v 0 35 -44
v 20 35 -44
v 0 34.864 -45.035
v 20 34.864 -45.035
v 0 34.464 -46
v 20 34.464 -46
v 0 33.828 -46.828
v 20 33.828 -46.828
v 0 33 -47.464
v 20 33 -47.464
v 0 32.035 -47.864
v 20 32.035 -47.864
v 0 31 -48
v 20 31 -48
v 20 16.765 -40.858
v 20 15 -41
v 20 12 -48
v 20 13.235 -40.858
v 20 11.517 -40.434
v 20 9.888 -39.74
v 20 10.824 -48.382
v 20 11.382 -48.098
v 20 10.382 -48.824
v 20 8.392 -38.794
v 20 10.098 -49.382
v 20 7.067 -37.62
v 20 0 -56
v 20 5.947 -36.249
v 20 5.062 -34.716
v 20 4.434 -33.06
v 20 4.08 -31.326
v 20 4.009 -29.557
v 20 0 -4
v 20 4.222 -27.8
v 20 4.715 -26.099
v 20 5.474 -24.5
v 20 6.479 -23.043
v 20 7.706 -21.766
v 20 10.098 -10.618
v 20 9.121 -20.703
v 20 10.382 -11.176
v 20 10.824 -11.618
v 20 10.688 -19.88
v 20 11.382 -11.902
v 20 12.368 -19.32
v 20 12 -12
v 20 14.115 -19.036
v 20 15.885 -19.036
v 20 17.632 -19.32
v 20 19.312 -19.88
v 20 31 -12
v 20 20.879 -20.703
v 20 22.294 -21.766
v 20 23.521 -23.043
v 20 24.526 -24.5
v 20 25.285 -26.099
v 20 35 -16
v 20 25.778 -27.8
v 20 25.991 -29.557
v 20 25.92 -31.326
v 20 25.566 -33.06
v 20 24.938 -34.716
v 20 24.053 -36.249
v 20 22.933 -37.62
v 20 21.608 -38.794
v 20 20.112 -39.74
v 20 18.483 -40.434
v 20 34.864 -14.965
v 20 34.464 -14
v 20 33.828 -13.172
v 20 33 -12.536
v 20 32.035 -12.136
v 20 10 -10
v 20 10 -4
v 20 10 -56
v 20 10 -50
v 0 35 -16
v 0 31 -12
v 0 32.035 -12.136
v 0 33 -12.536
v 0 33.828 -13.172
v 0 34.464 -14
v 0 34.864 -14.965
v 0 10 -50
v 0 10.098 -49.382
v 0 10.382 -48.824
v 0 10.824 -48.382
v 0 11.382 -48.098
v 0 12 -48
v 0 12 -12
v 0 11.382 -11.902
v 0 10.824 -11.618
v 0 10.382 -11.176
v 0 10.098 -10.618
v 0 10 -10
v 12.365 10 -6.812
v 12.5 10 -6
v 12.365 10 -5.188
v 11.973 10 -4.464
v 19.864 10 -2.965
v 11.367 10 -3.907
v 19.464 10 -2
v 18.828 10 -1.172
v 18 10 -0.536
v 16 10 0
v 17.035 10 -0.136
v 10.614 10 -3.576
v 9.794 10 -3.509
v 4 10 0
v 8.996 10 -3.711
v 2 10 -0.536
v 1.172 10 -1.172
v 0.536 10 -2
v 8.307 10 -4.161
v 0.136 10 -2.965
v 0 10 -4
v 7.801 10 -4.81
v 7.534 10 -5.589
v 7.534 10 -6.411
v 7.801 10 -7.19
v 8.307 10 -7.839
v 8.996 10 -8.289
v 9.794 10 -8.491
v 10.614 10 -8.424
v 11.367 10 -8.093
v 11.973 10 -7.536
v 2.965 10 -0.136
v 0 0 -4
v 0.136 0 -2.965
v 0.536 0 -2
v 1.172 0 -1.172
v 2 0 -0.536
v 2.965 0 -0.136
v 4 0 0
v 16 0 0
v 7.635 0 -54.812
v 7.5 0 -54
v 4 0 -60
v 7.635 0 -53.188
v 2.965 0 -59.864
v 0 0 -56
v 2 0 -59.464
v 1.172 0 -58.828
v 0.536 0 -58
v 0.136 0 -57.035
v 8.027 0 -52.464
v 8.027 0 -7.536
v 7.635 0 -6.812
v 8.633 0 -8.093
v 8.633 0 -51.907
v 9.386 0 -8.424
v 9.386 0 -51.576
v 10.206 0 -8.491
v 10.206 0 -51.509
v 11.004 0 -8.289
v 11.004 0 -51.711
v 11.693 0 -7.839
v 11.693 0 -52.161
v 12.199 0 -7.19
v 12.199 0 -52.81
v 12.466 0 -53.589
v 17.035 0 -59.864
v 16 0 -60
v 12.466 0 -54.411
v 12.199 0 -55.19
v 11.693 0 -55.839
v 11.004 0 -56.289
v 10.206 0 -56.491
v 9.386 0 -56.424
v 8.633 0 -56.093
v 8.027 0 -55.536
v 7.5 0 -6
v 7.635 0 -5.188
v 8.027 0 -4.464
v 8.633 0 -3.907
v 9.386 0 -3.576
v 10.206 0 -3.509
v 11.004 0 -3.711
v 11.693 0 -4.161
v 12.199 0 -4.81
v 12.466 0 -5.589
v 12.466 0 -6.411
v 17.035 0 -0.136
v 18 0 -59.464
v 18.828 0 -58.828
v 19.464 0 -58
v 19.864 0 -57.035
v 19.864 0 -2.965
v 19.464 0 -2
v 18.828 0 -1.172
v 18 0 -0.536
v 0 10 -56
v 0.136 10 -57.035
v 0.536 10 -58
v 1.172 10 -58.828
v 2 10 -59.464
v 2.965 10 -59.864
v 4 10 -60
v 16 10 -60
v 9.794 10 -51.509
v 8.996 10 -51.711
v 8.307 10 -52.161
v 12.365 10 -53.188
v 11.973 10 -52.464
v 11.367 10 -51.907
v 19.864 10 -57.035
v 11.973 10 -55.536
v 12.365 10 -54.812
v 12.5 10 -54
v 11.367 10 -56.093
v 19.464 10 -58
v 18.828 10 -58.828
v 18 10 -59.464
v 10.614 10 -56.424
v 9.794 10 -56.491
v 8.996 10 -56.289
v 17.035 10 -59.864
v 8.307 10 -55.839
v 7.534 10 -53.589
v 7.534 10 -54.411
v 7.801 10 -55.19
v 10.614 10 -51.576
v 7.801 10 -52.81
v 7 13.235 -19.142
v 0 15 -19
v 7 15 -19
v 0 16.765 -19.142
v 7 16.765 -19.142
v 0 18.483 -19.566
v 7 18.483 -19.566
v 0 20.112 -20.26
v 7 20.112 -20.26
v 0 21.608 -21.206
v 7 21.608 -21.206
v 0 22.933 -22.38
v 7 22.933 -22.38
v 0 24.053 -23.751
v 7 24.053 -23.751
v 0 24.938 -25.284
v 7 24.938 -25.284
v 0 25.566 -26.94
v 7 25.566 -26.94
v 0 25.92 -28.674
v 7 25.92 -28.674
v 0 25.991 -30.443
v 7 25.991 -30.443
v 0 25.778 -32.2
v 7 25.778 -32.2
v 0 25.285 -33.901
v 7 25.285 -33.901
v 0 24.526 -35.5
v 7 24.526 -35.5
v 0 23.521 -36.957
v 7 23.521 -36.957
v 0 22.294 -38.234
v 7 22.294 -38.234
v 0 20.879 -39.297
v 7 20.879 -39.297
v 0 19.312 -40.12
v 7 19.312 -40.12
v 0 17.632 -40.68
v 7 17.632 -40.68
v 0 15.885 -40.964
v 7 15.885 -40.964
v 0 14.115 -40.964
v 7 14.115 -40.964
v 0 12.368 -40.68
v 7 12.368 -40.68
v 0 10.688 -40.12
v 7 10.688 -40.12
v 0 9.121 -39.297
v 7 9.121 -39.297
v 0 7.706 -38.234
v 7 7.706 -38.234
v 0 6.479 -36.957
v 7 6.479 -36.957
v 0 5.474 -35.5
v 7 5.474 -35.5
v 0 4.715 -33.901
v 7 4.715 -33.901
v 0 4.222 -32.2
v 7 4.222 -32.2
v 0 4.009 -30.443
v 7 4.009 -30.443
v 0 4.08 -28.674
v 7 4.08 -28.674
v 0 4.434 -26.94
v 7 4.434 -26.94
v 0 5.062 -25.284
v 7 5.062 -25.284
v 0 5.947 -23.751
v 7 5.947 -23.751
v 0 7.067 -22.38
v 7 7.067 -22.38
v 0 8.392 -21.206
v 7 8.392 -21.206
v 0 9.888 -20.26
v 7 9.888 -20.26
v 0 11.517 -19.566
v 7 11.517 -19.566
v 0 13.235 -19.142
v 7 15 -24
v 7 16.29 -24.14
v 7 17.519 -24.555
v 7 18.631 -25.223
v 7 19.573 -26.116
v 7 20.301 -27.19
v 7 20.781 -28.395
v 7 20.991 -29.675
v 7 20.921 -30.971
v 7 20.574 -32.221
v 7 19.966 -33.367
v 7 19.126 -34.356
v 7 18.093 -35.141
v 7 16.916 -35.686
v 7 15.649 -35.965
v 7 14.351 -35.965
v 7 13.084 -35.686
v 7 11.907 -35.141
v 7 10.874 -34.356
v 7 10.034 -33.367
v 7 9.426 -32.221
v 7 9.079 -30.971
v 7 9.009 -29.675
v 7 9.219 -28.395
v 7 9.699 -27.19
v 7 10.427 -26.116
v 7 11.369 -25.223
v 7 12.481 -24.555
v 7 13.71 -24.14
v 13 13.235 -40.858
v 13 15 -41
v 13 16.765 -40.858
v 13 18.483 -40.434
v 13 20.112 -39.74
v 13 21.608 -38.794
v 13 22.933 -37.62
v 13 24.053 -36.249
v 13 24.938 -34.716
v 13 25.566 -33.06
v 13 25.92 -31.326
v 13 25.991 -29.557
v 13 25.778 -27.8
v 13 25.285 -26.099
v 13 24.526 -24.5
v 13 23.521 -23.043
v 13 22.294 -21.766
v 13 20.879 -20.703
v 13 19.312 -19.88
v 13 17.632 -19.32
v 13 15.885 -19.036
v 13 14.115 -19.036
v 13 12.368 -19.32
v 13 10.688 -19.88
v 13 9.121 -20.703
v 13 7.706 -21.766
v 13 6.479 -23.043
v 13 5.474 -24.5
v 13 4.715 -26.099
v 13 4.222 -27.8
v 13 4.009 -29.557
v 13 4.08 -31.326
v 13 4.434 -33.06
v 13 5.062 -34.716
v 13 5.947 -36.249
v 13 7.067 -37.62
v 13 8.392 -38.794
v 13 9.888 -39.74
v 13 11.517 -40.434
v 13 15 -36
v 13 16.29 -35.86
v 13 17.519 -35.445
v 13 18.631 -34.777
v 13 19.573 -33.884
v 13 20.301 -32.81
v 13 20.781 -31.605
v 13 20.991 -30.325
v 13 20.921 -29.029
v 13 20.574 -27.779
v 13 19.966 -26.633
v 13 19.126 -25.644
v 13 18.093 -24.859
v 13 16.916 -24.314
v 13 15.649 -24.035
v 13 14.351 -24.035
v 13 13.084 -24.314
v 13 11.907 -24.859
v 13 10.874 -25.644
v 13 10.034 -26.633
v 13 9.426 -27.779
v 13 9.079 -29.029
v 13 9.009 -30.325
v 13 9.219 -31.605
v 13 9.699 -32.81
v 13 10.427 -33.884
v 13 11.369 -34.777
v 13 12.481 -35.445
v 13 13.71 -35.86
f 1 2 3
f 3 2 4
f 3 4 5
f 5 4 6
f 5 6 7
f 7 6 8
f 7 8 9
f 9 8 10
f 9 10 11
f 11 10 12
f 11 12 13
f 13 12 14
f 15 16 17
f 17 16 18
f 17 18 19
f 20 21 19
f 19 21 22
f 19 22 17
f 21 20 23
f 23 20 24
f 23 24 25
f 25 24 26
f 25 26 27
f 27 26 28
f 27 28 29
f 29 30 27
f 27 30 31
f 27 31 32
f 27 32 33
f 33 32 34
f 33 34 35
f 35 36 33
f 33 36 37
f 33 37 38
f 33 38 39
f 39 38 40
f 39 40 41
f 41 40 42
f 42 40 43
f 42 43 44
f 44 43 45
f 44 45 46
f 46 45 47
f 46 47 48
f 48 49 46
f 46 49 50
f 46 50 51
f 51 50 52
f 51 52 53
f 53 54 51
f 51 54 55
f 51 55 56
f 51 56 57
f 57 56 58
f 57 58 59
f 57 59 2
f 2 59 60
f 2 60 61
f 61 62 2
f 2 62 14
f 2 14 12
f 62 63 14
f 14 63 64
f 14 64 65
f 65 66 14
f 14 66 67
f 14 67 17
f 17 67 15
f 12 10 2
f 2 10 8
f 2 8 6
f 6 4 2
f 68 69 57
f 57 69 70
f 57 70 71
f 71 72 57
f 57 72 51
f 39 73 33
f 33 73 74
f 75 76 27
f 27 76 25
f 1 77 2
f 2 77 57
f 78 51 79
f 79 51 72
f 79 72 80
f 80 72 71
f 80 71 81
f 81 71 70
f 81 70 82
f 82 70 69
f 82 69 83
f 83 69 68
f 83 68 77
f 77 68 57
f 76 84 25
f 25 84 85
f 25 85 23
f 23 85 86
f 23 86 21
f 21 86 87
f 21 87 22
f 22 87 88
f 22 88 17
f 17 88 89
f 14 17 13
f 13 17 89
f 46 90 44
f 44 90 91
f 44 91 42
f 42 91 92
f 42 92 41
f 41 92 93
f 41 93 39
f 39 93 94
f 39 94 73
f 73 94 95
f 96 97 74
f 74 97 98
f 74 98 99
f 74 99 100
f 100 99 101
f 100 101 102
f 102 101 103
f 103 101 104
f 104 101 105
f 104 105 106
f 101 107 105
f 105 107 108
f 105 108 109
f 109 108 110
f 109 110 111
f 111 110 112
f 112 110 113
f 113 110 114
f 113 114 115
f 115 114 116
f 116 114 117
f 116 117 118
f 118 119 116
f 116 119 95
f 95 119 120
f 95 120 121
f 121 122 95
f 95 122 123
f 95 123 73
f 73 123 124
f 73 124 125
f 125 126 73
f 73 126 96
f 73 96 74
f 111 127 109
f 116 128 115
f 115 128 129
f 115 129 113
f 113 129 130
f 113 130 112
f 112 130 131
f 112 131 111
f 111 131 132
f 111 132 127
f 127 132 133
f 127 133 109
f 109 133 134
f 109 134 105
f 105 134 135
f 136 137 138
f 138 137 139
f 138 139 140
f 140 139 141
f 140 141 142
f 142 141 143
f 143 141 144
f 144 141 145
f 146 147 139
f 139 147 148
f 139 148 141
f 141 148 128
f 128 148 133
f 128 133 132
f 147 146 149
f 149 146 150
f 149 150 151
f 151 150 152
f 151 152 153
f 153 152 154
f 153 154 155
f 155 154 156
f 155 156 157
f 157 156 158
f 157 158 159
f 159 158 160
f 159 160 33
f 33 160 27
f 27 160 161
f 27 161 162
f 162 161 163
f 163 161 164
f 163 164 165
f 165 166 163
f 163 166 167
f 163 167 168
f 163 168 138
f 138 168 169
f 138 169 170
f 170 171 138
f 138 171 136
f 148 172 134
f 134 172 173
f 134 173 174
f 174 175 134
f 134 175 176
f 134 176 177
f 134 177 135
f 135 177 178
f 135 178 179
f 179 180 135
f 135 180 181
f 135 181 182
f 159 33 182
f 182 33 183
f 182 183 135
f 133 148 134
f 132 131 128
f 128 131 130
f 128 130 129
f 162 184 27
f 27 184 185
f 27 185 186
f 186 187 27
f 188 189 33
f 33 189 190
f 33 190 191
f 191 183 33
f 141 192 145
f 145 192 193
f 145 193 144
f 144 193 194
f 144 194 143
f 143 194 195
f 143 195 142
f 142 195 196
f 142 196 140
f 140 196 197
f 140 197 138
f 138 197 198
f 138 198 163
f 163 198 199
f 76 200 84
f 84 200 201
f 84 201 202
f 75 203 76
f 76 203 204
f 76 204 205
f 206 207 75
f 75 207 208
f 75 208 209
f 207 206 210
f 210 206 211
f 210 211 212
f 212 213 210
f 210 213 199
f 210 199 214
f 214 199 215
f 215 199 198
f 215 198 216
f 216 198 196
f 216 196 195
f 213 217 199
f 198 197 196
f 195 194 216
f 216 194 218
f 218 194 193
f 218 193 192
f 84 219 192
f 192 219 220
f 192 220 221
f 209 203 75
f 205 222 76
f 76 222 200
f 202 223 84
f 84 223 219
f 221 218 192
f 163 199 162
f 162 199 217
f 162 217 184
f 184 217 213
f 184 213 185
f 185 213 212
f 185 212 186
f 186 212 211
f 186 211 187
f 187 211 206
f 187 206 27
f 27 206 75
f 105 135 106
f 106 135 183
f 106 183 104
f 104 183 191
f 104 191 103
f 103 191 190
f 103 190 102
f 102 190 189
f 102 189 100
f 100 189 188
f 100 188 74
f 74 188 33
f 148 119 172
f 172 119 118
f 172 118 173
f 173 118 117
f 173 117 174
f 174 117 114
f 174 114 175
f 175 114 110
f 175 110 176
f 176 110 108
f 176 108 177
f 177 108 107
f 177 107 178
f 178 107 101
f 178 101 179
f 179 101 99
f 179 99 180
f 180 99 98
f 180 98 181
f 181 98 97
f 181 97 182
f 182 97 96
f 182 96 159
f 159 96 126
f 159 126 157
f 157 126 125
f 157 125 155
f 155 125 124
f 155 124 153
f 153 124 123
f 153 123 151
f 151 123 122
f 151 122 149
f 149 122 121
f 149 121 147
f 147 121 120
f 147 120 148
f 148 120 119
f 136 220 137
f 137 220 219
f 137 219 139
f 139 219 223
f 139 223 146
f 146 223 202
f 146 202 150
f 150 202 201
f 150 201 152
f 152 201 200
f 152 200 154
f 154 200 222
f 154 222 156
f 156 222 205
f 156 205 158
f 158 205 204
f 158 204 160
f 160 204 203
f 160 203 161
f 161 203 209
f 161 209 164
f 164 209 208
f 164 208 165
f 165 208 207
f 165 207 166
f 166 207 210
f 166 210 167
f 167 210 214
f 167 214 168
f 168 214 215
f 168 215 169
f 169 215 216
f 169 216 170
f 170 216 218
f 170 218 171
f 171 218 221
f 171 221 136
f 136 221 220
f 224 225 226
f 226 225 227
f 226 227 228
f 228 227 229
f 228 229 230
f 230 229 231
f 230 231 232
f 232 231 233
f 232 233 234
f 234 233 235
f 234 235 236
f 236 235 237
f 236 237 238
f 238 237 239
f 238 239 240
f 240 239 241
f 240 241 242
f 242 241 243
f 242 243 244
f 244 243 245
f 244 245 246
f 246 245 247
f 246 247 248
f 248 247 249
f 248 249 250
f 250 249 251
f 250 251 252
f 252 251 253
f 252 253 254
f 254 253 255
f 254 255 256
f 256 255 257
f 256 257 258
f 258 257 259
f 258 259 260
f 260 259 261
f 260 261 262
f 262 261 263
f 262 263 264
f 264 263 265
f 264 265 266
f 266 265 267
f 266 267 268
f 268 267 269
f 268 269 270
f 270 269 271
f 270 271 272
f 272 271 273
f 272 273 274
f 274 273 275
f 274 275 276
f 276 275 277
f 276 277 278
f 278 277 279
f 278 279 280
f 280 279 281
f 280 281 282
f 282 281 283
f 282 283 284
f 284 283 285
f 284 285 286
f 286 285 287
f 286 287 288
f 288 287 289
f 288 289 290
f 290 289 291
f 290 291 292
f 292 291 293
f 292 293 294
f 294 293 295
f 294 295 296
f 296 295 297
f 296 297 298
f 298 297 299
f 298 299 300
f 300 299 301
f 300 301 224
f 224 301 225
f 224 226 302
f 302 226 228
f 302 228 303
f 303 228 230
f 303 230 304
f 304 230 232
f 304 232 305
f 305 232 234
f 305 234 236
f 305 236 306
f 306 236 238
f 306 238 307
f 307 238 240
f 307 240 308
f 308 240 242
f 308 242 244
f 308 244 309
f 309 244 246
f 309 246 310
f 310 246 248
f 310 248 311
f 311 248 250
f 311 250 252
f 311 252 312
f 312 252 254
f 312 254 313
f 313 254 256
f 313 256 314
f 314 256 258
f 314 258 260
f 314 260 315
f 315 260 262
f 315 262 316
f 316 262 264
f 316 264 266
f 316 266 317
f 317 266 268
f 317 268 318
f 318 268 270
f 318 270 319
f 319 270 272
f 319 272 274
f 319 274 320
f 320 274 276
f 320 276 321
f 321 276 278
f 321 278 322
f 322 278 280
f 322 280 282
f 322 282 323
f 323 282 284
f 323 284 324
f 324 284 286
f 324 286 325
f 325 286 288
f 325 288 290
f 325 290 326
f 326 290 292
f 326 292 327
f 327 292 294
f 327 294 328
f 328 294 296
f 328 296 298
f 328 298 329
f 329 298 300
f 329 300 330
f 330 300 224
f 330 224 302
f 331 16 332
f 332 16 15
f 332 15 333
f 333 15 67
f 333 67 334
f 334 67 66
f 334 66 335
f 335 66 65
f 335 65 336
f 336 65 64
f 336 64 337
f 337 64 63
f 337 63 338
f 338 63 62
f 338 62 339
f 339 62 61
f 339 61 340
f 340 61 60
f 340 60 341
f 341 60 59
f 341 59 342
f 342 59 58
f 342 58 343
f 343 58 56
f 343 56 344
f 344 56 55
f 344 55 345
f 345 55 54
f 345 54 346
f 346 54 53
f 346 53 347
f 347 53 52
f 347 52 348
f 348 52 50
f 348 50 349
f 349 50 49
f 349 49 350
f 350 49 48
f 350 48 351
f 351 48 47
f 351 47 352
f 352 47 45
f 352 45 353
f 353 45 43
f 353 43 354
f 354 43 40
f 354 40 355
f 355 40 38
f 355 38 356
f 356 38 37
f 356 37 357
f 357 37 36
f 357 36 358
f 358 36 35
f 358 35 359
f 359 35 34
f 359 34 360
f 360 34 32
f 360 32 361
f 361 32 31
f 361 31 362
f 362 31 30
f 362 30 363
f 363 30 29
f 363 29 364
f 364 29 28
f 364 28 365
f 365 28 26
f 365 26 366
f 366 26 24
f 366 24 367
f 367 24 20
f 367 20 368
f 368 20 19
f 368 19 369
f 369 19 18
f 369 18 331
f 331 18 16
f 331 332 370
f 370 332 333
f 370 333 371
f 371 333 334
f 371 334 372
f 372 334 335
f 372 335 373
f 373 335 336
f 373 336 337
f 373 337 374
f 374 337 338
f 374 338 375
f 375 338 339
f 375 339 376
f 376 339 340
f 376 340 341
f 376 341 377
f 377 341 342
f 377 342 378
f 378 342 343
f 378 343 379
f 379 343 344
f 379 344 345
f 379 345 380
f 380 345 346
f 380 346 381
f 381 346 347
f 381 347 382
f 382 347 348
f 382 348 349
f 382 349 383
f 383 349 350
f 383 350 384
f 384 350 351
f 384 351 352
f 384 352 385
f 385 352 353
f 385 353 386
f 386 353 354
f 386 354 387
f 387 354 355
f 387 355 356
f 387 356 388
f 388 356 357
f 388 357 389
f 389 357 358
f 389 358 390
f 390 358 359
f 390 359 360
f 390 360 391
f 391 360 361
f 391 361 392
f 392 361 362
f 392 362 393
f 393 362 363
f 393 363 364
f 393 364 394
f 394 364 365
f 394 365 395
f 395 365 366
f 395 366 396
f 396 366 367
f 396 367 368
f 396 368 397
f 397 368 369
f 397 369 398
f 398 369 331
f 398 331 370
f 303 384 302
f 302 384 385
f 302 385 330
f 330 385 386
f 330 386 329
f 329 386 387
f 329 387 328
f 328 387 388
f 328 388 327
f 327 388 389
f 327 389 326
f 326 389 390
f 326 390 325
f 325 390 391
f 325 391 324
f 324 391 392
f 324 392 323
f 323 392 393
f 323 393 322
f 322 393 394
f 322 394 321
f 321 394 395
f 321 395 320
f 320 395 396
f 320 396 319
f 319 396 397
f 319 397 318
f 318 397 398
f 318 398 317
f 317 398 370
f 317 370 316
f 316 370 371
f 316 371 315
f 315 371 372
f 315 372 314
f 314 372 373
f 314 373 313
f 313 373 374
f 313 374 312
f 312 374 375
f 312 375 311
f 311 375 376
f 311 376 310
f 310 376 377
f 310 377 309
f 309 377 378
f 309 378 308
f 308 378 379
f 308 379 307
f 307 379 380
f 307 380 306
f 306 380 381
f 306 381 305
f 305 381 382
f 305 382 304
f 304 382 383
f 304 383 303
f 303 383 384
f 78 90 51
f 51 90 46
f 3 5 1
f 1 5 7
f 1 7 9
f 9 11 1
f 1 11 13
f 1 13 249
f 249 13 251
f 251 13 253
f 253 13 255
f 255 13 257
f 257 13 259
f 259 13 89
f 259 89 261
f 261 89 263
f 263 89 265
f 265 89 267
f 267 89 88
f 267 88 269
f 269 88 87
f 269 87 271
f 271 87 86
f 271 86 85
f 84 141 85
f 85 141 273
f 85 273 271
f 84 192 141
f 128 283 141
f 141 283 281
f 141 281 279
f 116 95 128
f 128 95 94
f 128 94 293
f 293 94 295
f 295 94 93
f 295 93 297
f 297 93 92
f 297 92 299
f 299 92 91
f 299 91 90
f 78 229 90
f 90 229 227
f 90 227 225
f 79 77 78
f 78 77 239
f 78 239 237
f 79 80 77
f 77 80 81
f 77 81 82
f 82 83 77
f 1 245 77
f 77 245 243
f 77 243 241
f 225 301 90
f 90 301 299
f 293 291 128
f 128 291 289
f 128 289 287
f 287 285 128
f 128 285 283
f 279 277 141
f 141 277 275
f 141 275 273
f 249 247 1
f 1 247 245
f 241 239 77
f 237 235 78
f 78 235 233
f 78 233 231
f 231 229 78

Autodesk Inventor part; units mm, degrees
ref_plane "YZ Plane" through (0, 0, 0) normal (1, 0, 0) x (0, 1, 0)
ref_plane "XZ Plane" through (0, 0, 0) normal (0, 1, 0) x (-1, 0, 0)
ref_plane "XY Plane" through (0, 0, 0) normal (0, 0, 1) x (1, 0, 0)
sketch "Boceto1" plane through (0, 0, 0) normal (1, 0, 0) x (0, 1, 0)
  line L0 (0, 0) -> (0, -60)
  line L1 (0, -60) -> (10, -60)
  line L2 (10, -60) -> (10, -48)
  line L3 (10, -48) -> (35, -48)
  line L4 (35, -48) -> (35, -12)
  line L5 (35, -12) -> (10, -12)
  line L6 (10, -12) -> (10, 0)
  line L7 (10, 0) -> (0, 0)
  circle A0 centre (15, -30) radius 6
  dimension "d0" = 36
  dimension "d1" = 12
  dimension "d2" = 12
  dimension "d3" = 35
  dimension "d4" = 10
  dimension "d5" = 20
  dimension "d6" = 18
  dimension "d7" = 12
extrude "Extrusión1" add sketch "Boceto1" along normal blind 20
sketch "Boceto2" plane through (20, 0, 0) normal (1, 0, 0) x (0, 0, -1)
  circle A0 centre (30, 15) radius 6 projected
  circle A1 centre (30, 15) radius 11
  point P0 (0, 0)
  dimension "d10" = 22
extrude "Extrusión2" cut sketch "Boceto2" against normal blind 7
sketch "Boceto3" plane through (0, 0, 0) normal (-1, 0, 0) x (0, 0, 1)
  circle A0 centre (-30, 15) radius 6 projected
  circle A1 centre (-30, 15) radius 11
  point P0 (0, 0)
  dimension "d13" = 22
extrude "Extrusión3" cut sketch "Boceto3" against normal blind 7
sketch "Boceto4" plane through (0, 10, 0) normal (0, 1, 0) x (1, 0, 0)
  line L0 (20, 12) -> (20, 0) projected
  line L1 (0, 12) -> (0, 0) projected
  line L2 (20, 60) -> (20, 48) projected
  line L3 (0, 12) -> (20, 12) projected
  line L4 (0, 0) -> (20, 0) projected
  line L5 (0, 60) -> (20, 60) projected
  point P0 (10, 6)
  point P1 (10, 54)
  dimension "d16" = 20
  dimension "d17" = 10
  dimension "d18" = 10
  dimension "d19" = 12
  dimension "d20" = 6
  dimension "d21" = 6
hole "Agujero1" at (10, 10, -6) at (10, 10, -54) direction (0, -1, 0) diameter 5 end through all
fillet "Empalme1" radius 4 4 edges at (20, 5, 0) (20, 5, -60) (0, 5, -60) (0, 5, 0)
fillet "Empalme2" radius 2 2 edges at (10, 10, -12) (10, 10, -48)
fillet "Empalme3" radius 4 2 edges at (10, 35, -12) (10, 35, -48)
equation "\"d2\" = d1"
equation "\"d6\" = 0.5 * d0"
equation "\"d17\" = 0.5 * d16"
equation "\"d18\" = d17"
equation "\"d20\" = 0.5 * d19"
properties part number "Soporte_rueda_aluminio"
